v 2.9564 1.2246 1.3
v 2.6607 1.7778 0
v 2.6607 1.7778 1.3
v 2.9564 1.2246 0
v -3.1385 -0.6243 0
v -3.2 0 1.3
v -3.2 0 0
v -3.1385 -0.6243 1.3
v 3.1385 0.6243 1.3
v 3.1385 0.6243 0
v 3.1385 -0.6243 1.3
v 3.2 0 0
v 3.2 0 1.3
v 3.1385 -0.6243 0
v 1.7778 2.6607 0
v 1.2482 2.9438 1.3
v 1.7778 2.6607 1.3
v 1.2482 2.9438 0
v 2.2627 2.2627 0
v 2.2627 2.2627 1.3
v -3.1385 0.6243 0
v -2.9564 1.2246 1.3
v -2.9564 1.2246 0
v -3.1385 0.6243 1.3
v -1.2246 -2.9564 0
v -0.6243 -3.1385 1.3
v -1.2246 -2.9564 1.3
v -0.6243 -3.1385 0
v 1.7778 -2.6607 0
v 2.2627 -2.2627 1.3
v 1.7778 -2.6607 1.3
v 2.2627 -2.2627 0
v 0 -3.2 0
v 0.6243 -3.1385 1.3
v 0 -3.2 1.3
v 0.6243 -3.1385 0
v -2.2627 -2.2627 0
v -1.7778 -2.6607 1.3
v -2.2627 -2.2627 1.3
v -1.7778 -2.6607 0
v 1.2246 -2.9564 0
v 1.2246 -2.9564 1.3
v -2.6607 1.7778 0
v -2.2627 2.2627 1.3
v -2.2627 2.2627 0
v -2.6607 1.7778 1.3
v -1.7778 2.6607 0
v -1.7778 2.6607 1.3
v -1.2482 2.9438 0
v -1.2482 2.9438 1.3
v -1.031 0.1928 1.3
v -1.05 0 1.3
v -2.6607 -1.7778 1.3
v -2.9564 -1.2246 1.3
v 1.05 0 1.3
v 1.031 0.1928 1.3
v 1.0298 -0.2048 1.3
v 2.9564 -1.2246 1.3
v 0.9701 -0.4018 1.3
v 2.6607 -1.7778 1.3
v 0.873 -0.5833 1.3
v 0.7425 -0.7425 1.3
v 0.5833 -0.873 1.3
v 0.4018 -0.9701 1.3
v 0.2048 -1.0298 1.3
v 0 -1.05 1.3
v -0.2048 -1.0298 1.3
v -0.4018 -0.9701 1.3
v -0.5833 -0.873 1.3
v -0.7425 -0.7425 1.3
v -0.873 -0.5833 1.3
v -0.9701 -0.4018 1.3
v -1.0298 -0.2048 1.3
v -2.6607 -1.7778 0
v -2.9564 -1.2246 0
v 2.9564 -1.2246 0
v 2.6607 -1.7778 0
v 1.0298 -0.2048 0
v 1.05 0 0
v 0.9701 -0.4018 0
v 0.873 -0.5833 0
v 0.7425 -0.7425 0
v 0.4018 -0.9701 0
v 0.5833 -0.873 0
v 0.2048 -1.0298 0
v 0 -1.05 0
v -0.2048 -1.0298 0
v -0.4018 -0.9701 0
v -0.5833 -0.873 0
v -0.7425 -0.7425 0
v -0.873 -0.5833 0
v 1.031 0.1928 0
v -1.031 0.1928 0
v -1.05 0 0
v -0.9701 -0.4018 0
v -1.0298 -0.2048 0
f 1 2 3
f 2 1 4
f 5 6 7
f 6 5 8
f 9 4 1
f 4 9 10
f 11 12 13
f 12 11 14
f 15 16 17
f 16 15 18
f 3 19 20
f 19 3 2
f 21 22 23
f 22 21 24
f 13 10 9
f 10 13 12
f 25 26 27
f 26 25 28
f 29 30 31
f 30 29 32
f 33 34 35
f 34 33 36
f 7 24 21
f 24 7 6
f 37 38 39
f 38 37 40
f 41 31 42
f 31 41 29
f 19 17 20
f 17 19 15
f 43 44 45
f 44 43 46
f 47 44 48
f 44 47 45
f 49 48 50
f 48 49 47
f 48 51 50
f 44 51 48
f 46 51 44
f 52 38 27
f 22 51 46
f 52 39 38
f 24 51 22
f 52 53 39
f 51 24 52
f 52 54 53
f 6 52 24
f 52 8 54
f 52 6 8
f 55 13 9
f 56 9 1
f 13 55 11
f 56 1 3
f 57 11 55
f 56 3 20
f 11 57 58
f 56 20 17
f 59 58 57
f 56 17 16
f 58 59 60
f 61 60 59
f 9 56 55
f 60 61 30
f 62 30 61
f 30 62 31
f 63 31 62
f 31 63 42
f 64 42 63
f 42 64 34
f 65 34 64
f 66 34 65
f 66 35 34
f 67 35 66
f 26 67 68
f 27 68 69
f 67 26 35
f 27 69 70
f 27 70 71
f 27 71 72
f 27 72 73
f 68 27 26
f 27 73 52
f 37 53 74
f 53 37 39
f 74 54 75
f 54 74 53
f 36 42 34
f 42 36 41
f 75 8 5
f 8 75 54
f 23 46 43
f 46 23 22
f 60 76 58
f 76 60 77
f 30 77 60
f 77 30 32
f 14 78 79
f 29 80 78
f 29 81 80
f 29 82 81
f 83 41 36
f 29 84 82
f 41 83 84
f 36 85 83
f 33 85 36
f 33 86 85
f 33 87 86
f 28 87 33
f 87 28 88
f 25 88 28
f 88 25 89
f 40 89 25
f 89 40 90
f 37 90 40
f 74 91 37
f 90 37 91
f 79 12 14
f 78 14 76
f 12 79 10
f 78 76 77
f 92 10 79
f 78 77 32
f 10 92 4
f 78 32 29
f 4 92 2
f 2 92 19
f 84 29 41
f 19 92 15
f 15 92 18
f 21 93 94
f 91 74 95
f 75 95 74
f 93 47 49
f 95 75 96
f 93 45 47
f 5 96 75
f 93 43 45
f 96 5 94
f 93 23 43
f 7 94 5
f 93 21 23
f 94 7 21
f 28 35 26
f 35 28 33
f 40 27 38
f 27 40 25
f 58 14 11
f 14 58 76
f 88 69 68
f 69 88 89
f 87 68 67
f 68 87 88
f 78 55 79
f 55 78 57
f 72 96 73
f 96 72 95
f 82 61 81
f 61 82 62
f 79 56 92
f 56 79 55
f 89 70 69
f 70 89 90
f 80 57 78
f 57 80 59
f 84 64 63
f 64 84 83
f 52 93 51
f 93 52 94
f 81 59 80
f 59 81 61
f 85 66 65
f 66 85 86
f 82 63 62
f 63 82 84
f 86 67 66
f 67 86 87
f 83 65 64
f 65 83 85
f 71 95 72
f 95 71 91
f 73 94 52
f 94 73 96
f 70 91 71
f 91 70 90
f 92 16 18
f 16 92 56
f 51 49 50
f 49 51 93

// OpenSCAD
$fn=32;

module tight_c_clip(outer_d, inner_d, t, throat_w, entry_w) {
    outer_r=outer_d/2;
    inner_r=inner_d/2;
    difference() {
        difference() {
            cylinder(r=outer_r,h=t);
            translate([0,0,-0.1]) cylinder(r=inner_r,h=t+0.2);
        }
        linear_extrude(height=t+0.4)
            polygon(points=[
                [-throat_w/2,-0.2],
                [ throat_w/2,-0.2],
                [ entry_w/2,outer_r+0.4],
                [-entry_w/2,outer_r+0.4]
            ]);
    }
}

// V3: tightened for direct sideways snap onto the Ø2.40 groove.
tight_c_clip(outer_d=6.40,inner_d=2.10,t=1.30,throat_w=2.00,entry_w=2.60);
